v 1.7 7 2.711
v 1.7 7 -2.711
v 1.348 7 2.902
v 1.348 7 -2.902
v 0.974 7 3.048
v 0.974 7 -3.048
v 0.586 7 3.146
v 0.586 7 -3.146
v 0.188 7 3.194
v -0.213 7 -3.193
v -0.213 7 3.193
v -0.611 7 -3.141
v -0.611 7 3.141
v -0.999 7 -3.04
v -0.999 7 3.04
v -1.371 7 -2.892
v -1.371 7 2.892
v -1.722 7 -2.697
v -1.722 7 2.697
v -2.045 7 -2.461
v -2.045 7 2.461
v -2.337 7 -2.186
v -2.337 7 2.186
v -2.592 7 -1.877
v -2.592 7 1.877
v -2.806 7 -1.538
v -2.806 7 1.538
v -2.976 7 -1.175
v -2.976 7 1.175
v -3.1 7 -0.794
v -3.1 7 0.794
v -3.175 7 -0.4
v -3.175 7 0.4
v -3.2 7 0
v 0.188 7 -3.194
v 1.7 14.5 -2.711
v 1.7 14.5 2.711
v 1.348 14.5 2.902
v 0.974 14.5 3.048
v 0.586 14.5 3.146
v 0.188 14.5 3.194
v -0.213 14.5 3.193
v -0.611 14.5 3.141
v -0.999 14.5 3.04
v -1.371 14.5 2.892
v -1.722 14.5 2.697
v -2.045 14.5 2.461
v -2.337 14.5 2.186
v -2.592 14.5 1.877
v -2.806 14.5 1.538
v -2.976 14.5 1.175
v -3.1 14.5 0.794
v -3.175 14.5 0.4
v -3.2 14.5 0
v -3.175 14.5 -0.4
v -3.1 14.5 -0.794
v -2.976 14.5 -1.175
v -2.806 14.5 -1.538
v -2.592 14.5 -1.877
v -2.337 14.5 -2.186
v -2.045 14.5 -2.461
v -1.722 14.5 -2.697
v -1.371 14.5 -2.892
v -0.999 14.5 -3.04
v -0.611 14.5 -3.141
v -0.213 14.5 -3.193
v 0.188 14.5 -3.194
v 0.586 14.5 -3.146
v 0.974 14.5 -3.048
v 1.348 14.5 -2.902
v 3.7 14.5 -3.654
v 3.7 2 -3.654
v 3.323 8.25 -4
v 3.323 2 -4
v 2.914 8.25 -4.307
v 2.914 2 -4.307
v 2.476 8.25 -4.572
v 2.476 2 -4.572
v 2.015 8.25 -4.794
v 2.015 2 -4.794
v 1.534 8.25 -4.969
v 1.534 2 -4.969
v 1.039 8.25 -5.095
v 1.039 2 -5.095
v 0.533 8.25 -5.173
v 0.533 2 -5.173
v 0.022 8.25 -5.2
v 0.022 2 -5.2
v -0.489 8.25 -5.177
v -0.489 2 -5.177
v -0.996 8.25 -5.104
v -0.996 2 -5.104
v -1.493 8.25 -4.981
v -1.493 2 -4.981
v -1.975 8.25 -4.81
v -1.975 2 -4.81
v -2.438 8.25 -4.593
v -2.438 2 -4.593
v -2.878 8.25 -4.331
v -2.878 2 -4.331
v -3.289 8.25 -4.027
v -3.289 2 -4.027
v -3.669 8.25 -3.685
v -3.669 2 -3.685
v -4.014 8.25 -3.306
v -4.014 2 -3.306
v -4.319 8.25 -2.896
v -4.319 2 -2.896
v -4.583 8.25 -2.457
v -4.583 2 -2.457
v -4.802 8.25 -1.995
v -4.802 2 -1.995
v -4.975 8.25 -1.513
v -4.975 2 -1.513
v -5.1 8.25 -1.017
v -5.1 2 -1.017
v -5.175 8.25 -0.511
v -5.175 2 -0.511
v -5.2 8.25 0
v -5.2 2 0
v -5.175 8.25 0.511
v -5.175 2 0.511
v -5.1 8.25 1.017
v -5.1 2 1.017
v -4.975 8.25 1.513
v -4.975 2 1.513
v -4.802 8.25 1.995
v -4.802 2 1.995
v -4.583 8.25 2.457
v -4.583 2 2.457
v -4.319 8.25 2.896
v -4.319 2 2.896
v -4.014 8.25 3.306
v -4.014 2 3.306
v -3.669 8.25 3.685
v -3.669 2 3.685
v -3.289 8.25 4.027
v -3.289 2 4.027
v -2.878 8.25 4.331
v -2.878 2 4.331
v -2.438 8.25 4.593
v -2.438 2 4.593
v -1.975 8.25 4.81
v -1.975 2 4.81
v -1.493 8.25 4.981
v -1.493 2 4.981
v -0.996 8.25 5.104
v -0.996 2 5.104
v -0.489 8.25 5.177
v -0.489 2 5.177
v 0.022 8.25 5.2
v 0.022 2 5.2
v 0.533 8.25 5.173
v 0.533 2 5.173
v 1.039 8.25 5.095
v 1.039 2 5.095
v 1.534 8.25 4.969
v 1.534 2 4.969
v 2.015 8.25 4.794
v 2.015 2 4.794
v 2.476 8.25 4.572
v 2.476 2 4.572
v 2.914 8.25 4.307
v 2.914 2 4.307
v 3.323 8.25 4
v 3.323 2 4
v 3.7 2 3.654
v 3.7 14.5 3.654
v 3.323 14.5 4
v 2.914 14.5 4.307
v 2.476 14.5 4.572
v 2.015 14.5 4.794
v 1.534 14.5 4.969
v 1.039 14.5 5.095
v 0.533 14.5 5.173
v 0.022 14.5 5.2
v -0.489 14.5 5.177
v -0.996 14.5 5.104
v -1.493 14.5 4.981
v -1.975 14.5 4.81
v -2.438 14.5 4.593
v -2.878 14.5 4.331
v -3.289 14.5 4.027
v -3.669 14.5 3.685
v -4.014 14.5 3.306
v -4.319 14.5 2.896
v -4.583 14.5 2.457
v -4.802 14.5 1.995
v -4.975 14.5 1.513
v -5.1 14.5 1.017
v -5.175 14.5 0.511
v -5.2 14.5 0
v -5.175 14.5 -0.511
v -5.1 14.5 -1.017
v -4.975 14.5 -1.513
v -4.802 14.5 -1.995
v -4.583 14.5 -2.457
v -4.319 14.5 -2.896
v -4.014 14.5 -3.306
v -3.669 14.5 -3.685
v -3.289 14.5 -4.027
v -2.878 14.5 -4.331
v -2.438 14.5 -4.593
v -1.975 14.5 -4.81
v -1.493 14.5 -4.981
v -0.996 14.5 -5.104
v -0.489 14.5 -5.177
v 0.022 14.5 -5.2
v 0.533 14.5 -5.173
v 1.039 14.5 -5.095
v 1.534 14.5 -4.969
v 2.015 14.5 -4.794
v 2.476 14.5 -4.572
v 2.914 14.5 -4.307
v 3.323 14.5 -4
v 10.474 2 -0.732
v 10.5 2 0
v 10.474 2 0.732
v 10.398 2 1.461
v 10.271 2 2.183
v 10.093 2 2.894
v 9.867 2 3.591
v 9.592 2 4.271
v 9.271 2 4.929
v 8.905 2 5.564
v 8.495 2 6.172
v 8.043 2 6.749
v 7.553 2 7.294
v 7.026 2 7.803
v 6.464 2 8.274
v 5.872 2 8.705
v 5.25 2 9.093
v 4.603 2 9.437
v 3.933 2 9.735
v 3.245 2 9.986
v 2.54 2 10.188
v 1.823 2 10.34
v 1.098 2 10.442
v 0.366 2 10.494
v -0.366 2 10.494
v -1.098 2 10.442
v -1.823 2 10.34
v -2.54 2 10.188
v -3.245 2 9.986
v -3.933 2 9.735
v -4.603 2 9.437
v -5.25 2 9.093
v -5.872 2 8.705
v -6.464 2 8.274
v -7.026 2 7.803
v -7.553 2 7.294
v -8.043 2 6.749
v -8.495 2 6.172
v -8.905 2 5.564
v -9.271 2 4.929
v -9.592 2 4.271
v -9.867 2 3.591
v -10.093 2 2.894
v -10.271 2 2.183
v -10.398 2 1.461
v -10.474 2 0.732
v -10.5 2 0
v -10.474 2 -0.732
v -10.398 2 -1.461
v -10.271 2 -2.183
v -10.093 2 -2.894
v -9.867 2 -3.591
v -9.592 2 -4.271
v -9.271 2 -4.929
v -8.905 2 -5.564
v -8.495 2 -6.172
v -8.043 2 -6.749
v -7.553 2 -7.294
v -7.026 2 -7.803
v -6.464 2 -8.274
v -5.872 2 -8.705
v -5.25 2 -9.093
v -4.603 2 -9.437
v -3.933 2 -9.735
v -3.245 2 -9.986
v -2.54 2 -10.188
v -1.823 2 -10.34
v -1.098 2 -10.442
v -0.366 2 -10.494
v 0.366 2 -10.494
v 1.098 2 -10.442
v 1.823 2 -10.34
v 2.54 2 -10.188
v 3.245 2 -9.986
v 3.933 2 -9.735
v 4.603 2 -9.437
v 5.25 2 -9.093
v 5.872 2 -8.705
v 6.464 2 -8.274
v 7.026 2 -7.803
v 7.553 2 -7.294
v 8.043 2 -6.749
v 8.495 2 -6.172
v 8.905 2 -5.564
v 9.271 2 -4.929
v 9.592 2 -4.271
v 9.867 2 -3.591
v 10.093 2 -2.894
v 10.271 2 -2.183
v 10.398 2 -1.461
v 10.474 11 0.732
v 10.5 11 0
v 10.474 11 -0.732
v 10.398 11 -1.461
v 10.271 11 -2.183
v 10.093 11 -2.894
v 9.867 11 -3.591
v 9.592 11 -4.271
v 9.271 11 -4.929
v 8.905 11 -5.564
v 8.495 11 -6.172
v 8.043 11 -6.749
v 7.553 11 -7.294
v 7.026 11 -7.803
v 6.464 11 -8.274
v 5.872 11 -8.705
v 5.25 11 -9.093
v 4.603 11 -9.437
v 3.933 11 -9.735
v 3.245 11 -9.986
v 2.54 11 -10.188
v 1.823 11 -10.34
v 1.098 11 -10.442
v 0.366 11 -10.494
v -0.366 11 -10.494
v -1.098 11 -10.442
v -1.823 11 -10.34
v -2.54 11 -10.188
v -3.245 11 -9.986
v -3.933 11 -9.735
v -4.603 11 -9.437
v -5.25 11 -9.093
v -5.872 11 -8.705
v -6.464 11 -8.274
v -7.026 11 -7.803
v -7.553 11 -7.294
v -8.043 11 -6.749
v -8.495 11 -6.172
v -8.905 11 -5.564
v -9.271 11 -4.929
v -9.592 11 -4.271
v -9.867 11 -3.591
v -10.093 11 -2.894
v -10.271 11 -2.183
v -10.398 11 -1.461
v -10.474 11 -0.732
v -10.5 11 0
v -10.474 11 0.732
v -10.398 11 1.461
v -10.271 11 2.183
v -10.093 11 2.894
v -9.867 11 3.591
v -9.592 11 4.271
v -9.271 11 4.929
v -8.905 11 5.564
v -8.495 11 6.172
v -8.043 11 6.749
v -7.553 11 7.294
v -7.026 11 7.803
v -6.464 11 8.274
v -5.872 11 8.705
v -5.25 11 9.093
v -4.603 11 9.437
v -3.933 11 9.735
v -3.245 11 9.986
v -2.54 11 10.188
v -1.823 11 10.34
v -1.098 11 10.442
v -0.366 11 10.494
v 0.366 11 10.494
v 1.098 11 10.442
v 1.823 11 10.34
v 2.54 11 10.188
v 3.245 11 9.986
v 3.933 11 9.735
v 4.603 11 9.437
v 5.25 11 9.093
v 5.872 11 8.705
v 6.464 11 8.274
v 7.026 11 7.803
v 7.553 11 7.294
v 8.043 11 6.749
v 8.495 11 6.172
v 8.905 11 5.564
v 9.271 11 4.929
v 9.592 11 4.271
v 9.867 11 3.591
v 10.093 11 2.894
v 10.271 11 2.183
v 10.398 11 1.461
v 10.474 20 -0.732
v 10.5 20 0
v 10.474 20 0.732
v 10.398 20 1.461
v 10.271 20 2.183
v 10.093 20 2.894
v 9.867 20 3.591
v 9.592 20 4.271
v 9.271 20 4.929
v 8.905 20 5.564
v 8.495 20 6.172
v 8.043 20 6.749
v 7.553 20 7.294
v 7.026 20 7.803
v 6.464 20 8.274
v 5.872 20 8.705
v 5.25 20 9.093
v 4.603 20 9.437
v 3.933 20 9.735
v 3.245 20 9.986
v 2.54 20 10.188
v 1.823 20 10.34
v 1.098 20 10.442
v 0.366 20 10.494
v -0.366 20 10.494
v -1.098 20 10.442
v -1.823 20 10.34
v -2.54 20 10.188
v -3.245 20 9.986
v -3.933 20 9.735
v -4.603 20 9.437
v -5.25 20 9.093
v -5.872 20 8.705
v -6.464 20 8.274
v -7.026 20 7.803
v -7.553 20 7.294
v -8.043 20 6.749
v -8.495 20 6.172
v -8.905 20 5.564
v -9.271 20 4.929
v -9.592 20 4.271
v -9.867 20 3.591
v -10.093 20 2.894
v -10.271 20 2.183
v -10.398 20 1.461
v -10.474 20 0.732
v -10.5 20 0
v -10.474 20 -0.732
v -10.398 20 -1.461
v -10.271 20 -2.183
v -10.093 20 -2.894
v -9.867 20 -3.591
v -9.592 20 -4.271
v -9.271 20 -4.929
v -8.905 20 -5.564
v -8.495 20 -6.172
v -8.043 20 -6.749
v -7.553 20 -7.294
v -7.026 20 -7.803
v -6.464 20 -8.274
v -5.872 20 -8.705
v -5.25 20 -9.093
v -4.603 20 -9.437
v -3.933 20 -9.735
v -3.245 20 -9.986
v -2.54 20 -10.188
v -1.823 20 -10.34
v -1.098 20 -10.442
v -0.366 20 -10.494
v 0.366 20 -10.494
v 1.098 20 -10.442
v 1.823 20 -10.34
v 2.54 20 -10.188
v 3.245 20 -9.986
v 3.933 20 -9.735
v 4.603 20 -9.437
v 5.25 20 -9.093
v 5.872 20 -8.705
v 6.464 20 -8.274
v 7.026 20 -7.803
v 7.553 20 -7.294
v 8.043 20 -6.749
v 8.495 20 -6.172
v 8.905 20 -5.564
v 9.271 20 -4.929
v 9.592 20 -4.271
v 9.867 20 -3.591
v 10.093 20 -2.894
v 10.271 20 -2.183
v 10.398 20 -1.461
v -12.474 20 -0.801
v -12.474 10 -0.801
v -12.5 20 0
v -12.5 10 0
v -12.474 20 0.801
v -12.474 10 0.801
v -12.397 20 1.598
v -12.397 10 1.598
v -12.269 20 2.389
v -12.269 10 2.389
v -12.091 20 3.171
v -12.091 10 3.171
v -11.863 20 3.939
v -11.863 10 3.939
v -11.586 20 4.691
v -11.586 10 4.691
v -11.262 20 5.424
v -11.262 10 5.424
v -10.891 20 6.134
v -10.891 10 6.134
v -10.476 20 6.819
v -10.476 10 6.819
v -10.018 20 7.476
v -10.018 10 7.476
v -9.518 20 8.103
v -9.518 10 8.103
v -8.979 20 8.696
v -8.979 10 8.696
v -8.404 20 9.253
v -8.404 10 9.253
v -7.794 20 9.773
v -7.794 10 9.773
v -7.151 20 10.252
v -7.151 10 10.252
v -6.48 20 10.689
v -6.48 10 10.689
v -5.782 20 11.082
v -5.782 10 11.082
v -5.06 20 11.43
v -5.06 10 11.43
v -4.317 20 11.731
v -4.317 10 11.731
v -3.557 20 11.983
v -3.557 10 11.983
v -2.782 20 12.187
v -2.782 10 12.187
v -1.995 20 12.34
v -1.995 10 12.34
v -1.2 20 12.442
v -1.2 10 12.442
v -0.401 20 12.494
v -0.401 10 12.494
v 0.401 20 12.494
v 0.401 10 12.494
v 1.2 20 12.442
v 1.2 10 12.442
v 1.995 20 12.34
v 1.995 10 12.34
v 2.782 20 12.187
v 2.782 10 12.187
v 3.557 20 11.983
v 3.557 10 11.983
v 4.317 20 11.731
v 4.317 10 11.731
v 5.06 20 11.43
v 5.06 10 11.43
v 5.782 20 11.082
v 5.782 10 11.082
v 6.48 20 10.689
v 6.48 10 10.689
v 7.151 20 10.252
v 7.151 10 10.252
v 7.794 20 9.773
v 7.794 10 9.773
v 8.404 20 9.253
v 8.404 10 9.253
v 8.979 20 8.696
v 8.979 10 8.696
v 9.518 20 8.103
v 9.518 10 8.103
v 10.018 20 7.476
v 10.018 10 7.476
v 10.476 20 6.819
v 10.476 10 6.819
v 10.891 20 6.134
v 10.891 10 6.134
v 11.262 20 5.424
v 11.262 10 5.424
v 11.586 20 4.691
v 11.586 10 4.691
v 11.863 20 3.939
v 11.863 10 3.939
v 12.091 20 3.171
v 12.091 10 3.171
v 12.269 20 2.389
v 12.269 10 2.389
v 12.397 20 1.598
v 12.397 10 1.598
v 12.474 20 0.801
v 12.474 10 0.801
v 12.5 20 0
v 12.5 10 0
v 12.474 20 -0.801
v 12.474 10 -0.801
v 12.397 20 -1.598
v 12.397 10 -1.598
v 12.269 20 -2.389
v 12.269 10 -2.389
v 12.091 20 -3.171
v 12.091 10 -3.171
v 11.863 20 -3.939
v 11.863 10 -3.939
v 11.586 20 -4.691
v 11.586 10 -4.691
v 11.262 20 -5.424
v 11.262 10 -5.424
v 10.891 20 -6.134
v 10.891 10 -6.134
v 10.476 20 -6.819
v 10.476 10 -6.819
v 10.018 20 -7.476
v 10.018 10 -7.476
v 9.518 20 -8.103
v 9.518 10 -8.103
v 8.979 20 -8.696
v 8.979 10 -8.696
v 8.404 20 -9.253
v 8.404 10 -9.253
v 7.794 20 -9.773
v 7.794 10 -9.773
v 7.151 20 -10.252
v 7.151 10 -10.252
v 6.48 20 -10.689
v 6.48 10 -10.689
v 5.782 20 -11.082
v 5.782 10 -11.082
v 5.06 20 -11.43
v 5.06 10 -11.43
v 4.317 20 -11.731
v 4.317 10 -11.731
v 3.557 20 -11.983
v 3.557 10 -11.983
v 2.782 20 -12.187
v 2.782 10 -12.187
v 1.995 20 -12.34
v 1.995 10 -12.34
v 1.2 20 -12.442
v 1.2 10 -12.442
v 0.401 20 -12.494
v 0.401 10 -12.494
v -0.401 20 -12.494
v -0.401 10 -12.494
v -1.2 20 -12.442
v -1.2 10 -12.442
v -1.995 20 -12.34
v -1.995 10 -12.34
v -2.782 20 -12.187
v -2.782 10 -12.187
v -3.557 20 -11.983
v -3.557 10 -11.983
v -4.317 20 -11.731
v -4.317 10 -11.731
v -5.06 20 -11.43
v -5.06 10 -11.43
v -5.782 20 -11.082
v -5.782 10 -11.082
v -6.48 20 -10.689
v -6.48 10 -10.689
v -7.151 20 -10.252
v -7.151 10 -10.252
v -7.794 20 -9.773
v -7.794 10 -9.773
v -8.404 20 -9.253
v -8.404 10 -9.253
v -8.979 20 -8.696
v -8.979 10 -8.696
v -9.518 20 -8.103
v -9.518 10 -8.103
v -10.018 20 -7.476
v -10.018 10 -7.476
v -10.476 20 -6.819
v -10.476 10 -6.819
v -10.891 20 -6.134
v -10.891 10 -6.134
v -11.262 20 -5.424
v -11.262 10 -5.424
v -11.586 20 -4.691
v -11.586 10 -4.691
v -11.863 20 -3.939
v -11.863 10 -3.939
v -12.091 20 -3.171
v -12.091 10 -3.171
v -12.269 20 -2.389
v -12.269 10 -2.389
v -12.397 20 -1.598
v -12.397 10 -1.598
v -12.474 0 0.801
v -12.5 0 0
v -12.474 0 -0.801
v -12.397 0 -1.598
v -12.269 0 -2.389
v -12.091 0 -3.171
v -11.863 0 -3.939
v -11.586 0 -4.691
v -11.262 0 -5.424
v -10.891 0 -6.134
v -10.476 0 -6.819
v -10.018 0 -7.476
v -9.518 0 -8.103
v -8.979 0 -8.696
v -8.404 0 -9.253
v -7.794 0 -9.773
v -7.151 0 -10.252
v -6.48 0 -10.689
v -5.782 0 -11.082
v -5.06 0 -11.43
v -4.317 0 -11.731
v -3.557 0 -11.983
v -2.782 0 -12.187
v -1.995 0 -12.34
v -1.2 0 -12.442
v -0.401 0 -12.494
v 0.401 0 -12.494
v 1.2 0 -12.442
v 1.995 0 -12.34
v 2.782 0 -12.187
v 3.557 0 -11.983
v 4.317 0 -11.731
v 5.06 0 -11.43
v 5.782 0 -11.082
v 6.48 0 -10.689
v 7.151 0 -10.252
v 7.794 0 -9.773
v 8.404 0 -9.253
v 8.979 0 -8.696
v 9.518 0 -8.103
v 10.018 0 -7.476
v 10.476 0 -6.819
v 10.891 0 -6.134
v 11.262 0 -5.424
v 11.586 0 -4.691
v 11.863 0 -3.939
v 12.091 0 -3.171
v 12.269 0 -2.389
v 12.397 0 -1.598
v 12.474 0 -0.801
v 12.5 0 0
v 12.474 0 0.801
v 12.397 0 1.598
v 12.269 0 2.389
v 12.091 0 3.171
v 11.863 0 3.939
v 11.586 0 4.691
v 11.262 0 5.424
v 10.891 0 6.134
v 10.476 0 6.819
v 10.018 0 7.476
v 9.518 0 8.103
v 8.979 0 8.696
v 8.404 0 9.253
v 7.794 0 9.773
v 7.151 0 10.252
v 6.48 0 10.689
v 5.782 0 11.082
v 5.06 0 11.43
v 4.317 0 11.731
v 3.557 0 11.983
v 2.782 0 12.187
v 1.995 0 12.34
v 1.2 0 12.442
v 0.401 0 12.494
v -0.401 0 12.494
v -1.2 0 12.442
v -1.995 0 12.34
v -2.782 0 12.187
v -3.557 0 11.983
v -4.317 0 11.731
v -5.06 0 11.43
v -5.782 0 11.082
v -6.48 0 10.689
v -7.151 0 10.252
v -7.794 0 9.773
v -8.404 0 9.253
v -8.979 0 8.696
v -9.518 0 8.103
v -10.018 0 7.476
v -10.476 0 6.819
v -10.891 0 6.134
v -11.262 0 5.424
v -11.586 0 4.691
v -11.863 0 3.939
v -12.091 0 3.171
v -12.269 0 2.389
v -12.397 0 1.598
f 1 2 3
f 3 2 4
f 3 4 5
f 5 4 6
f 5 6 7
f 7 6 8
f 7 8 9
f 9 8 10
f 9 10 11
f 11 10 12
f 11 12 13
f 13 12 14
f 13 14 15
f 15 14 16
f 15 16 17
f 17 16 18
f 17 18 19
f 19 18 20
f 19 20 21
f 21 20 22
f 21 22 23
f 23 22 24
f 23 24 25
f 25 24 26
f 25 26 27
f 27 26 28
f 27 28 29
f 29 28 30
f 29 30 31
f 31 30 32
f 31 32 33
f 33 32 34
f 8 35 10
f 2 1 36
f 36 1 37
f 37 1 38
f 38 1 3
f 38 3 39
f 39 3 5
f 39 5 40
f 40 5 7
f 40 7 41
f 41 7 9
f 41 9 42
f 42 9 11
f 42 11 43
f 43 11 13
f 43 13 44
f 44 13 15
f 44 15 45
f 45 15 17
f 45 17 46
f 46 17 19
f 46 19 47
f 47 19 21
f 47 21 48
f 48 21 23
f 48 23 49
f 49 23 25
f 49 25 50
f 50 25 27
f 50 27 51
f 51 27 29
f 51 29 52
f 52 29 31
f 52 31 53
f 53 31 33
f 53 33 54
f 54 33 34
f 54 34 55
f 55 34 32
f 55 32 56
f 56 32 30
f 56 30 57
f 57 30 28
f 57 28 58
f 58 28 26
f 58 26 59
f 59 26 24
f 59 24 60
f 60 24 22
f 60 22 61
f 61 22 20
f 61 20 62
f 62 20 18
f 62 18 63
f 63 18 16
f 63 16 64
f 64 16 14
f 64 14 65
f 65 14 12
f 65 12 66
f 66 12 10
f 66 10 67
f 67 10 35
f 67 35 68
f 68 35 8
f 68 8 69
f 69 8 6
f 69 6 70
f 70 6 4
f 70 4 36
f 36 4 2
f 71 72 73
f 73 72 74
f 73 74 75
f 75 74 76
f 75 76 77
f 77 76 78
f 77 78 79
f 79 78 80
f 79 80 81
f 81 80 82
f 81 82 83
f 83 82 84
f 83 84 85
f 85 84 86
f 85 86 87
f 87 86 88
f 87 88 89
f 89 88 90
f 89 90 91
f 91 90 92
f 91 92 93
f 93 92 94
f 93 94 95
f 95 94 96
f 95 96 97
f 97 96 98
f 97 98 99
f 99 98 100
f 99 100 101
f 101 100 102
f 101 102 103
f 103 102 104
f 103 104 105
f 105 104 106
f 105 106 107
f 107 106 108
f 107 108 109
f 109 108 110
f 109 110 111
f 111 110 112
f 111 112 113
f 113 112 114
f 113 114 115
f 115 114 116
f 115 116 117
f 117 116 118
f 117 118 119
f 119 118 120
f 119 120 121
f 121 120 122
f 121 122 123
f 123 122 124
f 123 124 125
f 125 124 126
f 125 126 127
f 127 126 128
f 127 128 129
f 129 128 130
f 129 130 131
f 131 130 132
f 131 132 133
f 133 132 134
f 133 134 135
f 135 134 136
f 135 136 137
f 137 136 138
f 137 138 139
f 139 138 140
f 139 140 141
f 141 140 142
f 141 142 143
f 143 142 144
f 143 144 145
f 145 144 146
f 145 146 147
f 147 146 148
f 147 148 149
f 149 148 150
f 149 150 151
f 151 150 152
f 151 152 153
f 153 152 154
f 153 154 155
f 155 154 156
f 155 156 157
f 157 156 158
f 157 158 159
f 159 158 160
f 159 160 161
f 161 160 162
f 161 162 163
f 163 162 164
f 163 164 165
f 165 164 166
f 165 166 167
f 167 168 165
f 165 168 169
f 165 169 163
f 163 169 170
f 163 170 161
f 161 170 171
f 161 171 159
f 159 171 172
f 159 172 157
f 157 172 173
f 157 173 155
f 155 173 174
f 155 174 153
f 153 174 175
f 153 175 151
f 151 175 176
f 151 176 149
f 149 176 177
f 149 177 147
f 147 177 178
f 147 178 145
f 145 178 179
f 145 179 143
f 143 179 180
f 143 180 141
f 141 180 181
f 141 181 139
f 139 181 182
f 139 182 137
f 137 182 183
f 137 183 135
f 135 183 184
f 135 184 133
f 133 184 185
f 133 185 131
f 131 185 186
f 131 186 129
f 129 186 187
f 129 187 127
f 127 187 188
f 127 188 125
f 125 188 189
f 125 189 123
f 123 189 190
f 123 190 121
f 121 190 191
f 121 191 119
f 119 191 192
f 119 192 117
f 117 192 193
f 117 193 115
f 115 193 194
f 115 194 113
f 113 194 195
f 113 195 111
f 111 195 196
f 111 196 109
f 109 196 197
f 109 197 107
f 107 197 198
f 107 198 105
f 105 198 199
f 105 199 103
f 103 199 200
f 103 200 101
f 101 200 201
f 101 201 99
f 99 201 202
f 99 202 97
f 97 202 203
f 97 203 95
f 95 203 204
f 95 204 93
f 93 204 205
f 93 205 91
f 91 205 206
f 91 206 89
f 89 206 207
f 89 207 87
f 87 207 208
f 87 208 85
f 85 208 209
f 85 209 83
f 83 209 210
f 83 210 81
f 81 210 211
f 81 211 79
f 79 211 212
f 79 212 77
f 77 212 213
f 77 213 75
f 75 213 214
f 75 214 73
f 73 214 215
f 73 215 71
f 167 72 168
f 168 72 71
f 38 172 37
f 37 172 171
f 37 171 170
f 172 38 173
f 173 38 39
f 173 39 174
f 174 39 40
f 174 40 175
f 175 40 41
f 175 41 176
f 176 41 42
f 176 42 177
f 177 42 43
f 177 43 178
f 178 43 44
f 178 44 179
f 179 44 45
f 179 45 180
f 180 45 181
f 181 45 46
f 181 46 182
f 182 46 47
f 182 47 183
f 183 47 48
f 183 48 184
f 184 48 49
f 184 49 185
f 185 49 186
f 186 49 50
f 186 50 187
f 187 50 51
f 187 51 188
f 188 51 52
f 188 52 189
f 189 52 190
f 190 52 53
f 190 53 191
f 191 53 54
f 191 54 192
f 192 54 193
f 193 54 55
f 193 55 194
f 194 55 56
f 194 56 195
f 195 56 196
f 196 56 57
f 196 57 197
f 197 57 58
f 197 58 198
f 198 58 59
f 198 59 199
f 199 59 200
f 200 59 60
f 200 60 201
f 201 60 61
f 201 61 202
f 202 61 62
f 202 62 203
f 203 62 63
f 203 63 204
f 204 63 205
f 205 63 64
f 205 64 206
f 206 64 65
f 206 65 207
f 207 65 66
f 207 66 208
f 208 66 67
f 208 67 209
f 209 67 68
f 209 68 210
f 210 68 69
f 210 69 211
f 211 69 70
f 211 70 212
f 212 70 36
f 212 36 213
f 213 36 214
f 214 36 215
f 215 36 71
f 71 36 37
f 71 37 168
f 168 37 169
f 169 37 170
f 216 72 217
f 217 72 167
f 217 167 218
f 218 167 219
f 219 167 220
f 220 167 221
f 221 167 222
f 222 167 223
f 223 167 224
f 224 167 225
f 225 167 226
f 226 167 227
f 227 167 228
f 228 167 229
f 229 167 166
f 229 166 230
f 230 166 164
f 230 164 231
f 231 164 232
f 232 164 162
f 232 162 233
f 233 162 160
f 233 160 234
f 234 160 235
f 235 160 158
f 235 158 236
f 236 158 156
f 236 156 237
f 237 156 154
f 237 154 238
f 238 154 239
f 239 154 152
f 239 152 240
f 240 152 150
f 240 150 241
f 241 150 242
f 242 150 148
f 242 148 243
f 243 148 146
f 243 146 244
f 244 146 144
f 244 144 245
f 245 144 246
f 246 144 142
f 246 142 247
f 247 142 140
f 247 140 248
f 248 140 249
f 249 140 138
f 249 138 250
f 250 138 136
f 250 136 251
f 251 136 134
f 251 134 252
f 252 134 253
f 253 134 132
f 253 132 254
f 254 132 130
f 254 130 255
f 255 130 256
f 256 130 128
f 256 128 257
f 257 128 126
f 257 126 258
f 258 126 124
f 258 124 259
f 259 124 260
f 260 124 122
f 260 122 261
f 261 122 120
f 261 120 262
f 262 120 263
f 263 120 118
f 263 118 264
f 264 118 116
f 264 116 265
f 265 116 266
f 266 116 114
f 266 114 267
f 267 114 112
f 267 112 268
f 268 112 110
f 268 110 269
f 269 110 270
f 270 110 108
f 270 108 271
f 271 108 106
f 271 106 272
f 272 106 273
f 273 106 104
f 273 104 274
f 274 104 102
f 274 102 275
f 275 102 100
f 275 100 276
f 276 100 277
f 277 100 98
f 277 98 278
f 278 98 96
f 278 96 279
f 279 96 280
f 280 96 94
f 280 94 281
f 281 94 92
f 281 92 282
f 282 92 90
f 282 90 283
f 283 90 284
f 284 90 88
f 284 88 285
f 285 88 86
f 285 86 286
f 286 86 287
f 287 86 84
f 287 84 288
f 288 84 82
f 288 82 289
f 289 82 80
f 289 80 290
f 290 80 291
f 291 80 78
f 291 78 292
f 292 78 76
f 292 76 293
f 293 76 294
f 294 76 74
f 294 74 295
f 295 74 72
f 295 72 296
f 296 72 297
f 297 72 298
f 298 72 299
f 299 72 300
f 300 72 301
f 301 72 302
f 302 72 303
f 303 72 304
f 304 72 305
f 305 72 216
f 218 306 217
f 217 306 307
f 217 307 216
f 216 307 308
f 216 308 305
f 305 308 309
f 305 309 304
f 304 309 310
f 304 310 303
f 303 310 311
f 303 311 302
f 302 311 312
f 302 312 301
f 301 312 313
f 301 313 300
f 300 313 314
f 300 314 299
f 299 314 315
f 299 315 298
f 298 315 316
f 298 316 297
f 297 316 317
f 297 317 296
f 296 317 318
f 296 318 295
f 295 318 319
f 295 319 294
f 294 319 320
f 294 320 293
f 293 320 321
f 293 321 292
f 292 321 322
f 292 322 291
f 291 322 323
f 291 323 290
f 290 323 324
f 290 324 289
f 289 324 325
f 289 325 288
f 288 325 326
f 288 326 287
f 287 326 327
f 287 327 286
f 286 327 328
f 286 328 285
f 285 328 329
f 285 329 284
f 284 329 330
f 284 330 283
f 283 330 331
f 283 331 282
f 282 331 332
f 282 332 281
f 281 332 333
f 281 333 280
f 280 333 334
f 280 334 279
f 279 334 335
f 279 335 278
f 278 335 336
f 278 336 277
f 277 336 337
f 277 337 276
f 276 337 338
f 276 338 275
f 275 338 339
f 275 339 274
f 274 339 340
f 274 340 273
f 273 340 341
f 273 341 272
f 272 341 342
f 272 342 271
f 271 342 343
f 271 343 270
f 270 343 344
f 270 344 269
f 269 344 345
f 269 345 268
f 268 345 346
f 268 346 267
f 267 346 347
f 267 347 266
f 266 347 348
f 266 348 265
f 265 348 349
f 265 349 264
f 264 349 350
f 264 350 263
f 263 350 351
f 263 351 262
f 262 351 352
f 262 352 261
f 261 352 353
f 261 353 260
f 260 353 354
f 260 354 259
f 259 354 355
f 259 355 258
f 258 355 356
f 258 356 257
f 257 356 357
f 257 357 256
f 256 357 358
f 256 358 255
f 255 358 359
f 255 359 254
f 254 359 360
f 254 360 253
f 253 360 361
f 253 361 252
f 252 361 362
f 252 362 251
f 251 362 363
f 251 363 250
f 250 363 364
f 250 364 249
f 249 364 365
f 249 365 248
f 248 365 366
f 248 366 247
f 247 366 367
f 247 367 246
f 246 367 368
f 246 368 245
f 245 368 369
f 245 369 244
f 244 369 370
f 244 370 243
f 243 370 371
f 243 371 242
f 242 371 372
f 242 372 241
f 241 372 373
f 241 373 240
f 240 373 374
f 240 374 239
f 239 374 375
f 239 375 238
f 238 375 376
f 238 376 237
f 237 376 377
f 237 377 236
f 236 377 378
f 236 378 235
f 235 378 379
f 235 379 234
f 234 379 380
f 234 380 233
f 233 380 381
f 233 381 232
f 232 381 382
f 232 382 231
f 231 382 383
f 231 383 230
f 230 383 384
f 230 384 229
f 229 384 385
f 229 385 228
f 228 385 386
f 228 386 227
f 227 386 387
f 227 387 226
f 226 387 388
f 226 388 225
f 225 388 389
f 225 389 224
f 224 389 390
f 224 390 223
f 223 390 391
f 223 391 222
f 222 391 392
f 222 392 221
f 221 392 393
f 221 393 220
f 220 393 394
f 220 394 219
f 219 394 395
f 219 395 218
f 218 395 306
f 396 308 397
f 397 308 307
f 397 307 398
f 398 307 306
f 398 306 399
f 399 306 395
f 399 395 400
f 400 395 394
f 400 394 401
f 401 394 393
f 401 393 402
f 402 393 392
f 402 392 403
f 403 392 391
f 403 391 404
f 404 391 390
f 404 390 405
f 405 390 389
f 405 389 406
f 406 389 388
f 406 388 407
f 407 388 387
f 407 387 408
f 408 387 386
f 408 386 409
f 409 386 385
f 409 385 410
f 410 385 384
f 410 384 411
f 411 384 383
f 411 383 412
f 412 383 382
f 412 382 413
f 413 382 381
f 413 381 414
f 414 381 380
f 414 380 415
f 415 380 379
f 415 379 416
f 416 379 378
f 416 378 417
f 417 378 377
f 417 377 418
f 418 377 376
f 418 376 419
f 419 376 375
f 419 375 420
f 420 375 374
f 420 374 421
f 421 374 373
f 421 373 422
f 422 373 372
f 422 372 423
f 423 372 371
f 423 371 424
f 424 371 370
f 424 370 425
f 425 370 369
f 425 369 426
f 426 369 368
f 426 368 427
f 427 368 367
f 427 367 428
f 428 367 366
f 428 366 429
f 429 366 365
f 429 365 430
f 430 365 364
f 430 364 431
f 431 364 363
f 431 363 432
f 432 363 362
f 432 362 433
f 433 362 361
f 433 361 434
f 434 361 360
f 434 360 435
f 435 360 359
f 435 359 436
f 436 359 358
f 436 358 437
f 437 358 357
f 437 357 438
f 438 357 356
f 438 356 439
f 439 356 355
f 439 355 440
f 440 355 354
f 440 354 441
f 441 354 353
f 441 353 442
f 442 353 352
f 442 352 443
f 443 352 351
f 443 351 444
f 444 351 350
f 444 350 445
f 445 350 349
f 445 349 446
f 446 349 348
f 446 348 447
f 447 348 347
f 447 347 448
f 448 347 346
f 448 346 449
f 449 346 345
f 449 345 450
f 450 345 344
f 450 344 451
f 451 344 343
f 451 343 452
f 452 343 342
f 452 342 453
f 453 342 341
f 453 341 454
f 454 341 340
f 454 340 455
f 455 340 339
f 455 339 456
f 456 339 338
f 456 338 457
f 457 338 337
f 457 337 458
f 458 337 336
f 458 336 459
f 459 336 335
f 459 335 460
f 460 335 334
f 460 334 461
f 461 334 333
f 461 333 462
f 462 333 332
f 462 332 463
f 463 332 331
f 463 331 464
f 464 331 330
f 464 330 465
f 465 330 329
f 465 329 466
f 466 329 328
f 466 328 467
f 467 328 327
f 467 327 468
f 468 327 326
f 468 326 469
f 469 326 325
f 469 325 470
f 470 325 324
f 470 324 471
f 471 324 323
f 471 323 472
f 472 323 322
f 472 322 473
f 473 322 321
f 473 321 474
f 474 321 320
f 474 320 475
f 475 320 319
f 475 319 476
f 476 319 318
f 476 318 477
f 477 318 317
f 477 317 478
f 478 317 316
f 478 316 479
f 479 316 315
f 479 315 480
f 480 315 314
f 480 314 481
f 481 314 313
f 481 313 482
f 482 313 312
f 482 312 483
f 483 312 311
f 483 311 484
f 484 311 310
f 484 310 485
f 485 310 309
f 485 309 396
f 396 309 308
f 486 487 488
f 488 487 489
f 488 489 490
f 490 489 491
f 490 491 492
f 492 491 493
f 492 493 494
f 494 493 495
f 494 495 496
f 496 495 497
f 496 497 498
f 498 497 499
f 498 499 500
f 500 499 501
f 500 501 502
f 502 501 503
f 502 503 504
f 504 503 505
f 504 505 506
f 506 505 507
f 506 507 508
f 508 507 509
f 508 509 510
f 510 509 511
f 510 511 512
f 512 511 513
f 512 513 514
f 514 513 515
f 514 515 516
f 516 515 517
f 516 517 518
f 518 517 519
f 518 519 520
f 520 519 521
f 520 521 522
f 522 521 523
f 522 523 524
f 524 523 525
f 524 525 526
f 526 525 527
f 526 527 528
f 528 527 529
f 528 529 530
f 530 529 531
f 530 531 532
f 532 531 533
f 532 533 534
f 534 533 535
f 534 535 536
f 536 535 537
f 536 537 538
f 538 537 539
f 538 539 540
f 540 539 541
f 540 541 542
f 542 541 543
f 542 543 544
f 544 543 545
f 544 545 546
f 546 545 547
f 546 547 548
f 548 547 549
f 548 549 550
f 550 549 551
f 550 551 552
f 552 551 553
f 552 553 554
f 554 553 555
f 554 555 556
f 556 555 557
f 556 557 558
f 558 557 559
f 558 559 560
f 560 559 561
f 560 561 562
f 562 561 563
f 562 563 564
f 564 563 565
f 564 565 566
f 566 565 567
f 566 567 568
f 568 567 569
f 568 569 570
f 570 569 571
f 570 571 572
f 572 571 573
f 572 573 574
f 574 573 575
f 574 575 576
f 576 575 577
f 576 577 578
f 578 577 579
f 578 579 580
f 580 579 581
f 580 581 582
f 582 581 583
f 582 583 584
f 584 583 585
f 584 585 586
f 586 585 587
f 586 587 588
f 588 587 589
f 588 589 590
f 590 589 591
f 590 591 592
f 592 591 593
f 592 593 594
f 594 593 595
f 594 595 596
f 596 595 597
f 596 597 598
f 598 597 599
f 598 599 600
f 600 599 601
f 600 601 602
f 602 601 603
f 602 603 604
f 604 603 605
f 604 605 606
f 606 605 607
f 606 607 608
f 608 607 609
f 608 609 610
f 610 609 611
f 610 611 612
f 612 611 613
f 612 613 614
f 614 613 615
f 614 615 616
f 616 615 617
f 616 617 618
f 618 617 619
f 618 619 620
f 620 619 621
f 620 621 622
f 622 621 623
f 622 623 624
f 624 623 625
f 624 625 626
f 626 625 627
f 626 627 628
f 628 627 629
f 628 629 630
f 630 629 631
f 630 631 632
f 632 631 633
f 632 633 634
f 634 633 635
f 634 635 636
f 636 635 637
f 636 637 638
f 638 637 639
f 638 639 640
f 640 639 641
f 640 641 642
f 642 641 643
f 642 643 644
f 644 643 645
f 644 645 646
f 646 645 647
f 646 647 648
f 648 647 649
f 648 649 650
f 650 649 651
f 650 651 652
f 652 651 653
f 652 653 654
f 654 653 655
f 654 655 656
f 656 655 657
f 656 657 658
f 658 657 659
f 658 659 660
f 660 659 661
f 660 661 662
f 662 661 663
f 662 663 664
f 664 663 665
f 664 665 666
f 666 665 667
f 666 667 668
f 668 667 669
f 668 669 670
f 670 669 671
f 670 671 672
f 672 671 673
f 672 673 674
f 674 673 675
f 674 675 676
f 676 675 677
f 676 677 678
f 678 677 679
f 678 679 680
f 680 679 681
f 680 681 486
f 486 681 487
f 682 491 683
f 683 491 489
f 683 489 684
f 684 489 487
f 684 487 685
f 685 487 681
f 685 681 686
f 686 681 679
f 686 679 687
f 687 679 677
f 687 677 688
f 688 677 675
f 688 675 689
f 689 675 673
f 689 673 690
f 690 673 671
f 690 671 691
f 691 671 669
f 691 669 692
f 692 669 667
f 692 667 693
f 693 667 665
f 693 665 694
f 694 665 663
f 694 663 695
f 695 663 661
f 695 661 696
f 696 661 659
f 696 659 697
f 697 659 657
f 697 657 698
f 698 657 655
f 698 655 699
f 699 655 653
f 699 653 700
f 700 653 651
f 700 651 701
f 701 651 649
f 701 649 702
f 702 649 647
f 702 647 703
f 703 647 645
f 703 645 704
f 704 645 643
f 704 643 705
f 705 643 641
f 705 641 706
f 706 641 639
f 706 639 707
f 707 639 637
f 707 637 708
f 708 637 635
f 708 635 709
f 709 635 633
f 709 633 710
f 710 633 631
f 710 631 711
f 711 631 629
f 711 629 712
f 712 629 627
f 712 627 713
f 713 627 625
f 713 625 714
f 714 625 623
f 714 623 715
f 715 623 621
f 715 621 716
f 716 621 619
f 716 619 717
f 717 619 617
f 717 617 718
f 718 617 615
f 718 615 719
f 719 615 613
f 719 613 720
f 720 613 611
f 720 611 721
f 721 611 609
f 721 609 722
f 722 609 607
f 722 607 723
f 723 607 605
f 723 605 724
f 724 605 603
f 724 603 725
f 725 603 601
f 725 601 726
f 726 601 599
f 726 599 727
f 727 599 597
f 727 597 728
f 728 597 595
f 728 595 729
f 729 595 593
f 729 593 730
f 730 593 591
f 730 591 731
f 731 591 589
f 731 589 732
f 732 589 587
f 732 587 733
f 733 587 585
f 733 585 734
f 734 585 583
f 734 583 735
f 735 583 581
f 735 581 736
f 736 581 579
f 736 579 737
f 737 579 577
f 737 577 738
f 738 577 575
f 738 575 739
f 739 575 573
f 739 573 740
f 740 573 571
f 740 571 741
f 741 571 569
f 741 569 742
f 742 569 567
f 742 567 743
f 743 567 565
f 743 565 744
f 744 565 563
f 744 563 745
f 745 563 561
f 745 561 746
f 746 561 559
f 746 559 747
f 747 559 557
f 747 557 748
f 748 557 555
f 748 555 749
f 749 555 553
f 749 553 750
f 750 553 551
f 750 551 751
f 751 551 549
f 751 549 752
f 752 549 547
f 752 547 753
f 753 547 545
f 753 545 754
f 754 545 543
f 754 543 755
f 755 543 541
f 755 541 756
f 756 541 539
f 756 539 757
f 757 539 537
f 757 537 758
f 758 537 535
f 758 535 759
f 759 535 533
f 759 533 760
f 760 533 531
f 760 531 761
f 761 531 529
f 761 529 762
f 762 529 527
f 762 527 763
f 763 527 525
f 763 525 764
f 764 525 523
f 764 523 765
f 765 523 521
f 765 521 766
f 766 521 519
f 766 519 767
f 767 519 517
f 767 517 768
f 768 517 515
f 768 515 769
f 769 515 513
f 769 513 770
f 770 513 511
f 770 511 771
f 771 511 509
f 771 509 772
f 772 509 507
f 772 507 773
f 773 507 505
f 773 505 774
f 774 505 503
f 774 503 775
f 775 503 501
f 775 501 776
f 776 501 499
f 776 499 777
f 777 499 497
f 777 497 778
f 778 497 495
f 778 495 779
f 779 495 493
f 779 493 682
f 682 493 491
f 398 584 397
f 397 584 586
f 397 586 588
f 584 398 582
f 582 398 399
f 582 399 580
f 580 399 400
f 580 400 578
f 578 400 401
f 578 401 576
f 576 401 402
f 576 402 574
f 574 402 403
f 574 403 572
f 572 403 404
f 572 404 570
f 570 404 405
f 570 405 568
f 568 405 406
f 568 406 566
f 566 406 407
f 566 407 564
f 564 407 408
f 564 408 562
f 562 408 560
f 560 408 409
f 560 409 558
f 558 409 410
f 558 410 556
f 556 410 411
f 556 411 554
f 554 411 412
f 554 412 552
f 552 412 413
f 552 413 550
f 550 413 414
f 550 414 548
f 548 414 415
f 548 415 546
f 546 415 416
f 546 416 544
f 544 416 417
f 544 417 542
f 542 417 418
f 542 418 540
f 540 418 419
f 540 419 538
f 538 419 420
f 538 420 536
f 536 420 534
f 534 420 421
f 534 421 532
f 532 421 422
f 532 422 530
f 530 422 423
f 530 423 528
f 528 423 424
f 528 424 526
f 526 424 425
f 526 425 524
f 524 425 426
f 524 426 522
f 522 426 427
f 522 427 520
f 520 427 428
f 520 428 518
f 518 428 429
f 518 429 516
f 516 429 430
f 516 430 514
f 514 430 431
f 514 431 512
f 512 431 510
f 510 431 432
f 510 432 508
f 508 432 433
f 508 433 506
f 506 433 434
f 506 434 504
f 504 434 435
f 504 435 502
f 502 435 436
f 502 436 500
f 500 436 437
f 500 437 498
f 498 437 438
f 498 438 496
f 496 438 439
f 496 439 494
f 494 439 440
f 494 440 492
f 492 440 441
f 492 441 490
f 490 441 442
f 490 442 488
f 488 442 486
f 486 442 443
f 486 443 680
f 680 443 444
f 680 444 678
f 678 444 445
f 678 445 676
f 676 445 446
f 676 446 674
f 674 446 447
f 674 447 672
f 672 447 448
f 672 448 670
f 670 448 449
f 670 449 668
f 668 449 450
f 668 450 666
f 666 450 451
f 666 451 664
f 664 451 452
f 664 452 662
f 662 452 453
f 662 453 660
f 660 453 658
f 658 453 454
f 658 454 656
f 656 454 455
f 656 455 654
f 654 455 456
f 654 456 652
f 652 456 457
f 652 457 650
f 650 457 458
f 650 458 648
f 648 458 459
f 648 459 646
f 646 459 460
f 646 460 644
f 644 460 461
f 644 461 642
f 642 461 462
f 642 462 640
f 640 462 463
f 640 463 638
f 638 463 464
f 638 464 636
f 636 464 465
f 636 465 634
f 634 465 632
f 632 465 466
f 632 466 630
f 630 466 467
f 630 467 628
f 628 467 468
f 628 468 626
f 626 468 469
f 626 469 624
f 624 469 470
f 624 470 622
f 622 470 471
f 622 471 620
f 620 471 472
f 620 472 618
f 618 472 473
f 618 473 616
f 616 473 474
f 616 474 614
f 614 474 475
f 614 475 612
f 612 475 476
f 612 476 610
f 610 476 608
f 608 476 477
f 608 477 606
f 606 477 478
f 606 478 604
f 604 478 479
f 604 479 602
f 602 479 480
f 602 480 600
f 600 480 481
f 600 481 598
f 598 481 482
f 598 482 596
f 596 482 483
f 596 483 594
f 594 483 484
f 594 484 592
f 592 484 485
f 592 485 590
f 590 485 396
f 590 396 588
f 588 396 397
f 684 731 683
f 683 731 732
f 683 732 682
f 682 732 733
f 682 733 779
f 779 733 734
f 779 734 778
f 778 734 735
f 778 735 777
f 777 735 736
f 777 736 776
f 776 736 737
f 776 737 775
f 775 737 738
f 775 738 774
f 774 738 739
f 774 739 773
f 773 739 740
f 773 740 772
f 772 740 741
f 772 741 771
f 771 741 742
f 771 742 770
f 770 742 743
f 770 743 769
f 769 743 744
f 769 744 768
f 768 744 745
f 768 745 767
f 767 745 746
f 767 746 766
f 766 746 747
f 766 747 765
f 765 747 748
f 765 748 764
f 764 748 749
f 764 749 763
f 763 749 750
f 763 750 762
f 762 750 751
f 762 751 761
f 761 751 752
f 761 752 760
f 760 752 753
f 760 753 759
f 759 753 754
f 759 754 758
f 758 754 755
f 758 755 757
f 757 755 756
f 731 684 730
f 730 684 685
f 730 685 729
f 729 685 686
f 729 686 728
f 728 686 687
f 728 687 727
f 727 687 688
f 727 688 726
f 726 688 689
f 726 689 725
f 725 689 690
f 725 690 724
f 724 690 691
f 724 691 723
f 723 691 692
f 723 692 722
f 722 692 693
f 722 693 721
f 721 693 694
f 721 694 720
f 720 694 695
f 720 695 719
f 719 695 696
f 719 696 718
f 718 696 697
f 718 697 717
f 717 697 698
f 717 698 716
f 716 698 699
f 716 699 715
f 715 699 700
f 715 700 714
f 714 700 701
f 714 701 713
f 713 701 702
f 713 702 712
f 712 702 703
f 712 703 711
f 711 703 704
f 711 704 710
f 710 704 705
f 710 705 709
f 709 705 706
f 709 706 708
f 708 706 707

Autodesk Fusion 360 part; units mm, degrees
sketch "Outer" plane through (0, 0, 0) normal (0, 1, 0) x (1, 0, 0)
  circle A0 centre (0, 0) radius 12.5
  dimension "d1" = 25
extrude "Extrude1" add sketch "Outer" along normal blind 20
sketch "Inner" plane through (0, 20, 0) normal (0, 1, 0) x (-1, 0, 0)
  circle A0 centre (0, 0) radius 12.5
  circle A1 centre (0, 0) radius 10.5
  dimension "d4" = 21
extrude "Extrude2" cut sketch "Inner" against normal blind 18 contours A1
sketch "Shaft" plane through (0, 2, 0) normal (0, 1, 0) x (-1, 0, 0)
  circle A0 centre (0, 0) radius 10.5
  line L0 (-1.7, 2.7111) -> (-1.7, -2.7111)
  arc A1 (-1.7, -2.7111) -> (-1.7, 2.7111) centre (0, 0) ccw
  arc A2 (-3.7, -3.6538) -> (-3.7, 3.6538) centre (0, 0) ccw
  line L1 (-3.7, 3.6538) -> (-3.7, -3.6538)
  dimension "d7" = 6.4
  dimension "d8" = 1.7
  dimension "d9" = 2
extrude "Extrude3" add sketch "Shaft" along normal blind 12.5 contours A2 L1
sketch "Sketch4" plane through (0, 2, 0) normal (0, 1, 0) x (-1, 0, 0)
  line L0 (-1.7, 2.7111) -> (-1.7, -2.7111)
  arc A0 (-1.7, -2.7111) -> (-1.7, 2.7111) centre (0, 0) ccw
extrude "Extrude4" add sketch "Sketch4" along normal blind 5
equation "d4 = 25 mm - 2 mm - 2 mm"
equation "d5 = -( 20 mm - 2 mm )"
equation "d7 = 6 mm + 0.2 mm + 0.2 mm"
equation "d8 = ( 4.5 mm - 3 mm ) + 0.2 mm"
equation "d10 = 20 mm - 2 mm - 5.5 mm"
equation "d12 = 20 mm - 2 mm - 5.5 mm - 7.5 mm"
